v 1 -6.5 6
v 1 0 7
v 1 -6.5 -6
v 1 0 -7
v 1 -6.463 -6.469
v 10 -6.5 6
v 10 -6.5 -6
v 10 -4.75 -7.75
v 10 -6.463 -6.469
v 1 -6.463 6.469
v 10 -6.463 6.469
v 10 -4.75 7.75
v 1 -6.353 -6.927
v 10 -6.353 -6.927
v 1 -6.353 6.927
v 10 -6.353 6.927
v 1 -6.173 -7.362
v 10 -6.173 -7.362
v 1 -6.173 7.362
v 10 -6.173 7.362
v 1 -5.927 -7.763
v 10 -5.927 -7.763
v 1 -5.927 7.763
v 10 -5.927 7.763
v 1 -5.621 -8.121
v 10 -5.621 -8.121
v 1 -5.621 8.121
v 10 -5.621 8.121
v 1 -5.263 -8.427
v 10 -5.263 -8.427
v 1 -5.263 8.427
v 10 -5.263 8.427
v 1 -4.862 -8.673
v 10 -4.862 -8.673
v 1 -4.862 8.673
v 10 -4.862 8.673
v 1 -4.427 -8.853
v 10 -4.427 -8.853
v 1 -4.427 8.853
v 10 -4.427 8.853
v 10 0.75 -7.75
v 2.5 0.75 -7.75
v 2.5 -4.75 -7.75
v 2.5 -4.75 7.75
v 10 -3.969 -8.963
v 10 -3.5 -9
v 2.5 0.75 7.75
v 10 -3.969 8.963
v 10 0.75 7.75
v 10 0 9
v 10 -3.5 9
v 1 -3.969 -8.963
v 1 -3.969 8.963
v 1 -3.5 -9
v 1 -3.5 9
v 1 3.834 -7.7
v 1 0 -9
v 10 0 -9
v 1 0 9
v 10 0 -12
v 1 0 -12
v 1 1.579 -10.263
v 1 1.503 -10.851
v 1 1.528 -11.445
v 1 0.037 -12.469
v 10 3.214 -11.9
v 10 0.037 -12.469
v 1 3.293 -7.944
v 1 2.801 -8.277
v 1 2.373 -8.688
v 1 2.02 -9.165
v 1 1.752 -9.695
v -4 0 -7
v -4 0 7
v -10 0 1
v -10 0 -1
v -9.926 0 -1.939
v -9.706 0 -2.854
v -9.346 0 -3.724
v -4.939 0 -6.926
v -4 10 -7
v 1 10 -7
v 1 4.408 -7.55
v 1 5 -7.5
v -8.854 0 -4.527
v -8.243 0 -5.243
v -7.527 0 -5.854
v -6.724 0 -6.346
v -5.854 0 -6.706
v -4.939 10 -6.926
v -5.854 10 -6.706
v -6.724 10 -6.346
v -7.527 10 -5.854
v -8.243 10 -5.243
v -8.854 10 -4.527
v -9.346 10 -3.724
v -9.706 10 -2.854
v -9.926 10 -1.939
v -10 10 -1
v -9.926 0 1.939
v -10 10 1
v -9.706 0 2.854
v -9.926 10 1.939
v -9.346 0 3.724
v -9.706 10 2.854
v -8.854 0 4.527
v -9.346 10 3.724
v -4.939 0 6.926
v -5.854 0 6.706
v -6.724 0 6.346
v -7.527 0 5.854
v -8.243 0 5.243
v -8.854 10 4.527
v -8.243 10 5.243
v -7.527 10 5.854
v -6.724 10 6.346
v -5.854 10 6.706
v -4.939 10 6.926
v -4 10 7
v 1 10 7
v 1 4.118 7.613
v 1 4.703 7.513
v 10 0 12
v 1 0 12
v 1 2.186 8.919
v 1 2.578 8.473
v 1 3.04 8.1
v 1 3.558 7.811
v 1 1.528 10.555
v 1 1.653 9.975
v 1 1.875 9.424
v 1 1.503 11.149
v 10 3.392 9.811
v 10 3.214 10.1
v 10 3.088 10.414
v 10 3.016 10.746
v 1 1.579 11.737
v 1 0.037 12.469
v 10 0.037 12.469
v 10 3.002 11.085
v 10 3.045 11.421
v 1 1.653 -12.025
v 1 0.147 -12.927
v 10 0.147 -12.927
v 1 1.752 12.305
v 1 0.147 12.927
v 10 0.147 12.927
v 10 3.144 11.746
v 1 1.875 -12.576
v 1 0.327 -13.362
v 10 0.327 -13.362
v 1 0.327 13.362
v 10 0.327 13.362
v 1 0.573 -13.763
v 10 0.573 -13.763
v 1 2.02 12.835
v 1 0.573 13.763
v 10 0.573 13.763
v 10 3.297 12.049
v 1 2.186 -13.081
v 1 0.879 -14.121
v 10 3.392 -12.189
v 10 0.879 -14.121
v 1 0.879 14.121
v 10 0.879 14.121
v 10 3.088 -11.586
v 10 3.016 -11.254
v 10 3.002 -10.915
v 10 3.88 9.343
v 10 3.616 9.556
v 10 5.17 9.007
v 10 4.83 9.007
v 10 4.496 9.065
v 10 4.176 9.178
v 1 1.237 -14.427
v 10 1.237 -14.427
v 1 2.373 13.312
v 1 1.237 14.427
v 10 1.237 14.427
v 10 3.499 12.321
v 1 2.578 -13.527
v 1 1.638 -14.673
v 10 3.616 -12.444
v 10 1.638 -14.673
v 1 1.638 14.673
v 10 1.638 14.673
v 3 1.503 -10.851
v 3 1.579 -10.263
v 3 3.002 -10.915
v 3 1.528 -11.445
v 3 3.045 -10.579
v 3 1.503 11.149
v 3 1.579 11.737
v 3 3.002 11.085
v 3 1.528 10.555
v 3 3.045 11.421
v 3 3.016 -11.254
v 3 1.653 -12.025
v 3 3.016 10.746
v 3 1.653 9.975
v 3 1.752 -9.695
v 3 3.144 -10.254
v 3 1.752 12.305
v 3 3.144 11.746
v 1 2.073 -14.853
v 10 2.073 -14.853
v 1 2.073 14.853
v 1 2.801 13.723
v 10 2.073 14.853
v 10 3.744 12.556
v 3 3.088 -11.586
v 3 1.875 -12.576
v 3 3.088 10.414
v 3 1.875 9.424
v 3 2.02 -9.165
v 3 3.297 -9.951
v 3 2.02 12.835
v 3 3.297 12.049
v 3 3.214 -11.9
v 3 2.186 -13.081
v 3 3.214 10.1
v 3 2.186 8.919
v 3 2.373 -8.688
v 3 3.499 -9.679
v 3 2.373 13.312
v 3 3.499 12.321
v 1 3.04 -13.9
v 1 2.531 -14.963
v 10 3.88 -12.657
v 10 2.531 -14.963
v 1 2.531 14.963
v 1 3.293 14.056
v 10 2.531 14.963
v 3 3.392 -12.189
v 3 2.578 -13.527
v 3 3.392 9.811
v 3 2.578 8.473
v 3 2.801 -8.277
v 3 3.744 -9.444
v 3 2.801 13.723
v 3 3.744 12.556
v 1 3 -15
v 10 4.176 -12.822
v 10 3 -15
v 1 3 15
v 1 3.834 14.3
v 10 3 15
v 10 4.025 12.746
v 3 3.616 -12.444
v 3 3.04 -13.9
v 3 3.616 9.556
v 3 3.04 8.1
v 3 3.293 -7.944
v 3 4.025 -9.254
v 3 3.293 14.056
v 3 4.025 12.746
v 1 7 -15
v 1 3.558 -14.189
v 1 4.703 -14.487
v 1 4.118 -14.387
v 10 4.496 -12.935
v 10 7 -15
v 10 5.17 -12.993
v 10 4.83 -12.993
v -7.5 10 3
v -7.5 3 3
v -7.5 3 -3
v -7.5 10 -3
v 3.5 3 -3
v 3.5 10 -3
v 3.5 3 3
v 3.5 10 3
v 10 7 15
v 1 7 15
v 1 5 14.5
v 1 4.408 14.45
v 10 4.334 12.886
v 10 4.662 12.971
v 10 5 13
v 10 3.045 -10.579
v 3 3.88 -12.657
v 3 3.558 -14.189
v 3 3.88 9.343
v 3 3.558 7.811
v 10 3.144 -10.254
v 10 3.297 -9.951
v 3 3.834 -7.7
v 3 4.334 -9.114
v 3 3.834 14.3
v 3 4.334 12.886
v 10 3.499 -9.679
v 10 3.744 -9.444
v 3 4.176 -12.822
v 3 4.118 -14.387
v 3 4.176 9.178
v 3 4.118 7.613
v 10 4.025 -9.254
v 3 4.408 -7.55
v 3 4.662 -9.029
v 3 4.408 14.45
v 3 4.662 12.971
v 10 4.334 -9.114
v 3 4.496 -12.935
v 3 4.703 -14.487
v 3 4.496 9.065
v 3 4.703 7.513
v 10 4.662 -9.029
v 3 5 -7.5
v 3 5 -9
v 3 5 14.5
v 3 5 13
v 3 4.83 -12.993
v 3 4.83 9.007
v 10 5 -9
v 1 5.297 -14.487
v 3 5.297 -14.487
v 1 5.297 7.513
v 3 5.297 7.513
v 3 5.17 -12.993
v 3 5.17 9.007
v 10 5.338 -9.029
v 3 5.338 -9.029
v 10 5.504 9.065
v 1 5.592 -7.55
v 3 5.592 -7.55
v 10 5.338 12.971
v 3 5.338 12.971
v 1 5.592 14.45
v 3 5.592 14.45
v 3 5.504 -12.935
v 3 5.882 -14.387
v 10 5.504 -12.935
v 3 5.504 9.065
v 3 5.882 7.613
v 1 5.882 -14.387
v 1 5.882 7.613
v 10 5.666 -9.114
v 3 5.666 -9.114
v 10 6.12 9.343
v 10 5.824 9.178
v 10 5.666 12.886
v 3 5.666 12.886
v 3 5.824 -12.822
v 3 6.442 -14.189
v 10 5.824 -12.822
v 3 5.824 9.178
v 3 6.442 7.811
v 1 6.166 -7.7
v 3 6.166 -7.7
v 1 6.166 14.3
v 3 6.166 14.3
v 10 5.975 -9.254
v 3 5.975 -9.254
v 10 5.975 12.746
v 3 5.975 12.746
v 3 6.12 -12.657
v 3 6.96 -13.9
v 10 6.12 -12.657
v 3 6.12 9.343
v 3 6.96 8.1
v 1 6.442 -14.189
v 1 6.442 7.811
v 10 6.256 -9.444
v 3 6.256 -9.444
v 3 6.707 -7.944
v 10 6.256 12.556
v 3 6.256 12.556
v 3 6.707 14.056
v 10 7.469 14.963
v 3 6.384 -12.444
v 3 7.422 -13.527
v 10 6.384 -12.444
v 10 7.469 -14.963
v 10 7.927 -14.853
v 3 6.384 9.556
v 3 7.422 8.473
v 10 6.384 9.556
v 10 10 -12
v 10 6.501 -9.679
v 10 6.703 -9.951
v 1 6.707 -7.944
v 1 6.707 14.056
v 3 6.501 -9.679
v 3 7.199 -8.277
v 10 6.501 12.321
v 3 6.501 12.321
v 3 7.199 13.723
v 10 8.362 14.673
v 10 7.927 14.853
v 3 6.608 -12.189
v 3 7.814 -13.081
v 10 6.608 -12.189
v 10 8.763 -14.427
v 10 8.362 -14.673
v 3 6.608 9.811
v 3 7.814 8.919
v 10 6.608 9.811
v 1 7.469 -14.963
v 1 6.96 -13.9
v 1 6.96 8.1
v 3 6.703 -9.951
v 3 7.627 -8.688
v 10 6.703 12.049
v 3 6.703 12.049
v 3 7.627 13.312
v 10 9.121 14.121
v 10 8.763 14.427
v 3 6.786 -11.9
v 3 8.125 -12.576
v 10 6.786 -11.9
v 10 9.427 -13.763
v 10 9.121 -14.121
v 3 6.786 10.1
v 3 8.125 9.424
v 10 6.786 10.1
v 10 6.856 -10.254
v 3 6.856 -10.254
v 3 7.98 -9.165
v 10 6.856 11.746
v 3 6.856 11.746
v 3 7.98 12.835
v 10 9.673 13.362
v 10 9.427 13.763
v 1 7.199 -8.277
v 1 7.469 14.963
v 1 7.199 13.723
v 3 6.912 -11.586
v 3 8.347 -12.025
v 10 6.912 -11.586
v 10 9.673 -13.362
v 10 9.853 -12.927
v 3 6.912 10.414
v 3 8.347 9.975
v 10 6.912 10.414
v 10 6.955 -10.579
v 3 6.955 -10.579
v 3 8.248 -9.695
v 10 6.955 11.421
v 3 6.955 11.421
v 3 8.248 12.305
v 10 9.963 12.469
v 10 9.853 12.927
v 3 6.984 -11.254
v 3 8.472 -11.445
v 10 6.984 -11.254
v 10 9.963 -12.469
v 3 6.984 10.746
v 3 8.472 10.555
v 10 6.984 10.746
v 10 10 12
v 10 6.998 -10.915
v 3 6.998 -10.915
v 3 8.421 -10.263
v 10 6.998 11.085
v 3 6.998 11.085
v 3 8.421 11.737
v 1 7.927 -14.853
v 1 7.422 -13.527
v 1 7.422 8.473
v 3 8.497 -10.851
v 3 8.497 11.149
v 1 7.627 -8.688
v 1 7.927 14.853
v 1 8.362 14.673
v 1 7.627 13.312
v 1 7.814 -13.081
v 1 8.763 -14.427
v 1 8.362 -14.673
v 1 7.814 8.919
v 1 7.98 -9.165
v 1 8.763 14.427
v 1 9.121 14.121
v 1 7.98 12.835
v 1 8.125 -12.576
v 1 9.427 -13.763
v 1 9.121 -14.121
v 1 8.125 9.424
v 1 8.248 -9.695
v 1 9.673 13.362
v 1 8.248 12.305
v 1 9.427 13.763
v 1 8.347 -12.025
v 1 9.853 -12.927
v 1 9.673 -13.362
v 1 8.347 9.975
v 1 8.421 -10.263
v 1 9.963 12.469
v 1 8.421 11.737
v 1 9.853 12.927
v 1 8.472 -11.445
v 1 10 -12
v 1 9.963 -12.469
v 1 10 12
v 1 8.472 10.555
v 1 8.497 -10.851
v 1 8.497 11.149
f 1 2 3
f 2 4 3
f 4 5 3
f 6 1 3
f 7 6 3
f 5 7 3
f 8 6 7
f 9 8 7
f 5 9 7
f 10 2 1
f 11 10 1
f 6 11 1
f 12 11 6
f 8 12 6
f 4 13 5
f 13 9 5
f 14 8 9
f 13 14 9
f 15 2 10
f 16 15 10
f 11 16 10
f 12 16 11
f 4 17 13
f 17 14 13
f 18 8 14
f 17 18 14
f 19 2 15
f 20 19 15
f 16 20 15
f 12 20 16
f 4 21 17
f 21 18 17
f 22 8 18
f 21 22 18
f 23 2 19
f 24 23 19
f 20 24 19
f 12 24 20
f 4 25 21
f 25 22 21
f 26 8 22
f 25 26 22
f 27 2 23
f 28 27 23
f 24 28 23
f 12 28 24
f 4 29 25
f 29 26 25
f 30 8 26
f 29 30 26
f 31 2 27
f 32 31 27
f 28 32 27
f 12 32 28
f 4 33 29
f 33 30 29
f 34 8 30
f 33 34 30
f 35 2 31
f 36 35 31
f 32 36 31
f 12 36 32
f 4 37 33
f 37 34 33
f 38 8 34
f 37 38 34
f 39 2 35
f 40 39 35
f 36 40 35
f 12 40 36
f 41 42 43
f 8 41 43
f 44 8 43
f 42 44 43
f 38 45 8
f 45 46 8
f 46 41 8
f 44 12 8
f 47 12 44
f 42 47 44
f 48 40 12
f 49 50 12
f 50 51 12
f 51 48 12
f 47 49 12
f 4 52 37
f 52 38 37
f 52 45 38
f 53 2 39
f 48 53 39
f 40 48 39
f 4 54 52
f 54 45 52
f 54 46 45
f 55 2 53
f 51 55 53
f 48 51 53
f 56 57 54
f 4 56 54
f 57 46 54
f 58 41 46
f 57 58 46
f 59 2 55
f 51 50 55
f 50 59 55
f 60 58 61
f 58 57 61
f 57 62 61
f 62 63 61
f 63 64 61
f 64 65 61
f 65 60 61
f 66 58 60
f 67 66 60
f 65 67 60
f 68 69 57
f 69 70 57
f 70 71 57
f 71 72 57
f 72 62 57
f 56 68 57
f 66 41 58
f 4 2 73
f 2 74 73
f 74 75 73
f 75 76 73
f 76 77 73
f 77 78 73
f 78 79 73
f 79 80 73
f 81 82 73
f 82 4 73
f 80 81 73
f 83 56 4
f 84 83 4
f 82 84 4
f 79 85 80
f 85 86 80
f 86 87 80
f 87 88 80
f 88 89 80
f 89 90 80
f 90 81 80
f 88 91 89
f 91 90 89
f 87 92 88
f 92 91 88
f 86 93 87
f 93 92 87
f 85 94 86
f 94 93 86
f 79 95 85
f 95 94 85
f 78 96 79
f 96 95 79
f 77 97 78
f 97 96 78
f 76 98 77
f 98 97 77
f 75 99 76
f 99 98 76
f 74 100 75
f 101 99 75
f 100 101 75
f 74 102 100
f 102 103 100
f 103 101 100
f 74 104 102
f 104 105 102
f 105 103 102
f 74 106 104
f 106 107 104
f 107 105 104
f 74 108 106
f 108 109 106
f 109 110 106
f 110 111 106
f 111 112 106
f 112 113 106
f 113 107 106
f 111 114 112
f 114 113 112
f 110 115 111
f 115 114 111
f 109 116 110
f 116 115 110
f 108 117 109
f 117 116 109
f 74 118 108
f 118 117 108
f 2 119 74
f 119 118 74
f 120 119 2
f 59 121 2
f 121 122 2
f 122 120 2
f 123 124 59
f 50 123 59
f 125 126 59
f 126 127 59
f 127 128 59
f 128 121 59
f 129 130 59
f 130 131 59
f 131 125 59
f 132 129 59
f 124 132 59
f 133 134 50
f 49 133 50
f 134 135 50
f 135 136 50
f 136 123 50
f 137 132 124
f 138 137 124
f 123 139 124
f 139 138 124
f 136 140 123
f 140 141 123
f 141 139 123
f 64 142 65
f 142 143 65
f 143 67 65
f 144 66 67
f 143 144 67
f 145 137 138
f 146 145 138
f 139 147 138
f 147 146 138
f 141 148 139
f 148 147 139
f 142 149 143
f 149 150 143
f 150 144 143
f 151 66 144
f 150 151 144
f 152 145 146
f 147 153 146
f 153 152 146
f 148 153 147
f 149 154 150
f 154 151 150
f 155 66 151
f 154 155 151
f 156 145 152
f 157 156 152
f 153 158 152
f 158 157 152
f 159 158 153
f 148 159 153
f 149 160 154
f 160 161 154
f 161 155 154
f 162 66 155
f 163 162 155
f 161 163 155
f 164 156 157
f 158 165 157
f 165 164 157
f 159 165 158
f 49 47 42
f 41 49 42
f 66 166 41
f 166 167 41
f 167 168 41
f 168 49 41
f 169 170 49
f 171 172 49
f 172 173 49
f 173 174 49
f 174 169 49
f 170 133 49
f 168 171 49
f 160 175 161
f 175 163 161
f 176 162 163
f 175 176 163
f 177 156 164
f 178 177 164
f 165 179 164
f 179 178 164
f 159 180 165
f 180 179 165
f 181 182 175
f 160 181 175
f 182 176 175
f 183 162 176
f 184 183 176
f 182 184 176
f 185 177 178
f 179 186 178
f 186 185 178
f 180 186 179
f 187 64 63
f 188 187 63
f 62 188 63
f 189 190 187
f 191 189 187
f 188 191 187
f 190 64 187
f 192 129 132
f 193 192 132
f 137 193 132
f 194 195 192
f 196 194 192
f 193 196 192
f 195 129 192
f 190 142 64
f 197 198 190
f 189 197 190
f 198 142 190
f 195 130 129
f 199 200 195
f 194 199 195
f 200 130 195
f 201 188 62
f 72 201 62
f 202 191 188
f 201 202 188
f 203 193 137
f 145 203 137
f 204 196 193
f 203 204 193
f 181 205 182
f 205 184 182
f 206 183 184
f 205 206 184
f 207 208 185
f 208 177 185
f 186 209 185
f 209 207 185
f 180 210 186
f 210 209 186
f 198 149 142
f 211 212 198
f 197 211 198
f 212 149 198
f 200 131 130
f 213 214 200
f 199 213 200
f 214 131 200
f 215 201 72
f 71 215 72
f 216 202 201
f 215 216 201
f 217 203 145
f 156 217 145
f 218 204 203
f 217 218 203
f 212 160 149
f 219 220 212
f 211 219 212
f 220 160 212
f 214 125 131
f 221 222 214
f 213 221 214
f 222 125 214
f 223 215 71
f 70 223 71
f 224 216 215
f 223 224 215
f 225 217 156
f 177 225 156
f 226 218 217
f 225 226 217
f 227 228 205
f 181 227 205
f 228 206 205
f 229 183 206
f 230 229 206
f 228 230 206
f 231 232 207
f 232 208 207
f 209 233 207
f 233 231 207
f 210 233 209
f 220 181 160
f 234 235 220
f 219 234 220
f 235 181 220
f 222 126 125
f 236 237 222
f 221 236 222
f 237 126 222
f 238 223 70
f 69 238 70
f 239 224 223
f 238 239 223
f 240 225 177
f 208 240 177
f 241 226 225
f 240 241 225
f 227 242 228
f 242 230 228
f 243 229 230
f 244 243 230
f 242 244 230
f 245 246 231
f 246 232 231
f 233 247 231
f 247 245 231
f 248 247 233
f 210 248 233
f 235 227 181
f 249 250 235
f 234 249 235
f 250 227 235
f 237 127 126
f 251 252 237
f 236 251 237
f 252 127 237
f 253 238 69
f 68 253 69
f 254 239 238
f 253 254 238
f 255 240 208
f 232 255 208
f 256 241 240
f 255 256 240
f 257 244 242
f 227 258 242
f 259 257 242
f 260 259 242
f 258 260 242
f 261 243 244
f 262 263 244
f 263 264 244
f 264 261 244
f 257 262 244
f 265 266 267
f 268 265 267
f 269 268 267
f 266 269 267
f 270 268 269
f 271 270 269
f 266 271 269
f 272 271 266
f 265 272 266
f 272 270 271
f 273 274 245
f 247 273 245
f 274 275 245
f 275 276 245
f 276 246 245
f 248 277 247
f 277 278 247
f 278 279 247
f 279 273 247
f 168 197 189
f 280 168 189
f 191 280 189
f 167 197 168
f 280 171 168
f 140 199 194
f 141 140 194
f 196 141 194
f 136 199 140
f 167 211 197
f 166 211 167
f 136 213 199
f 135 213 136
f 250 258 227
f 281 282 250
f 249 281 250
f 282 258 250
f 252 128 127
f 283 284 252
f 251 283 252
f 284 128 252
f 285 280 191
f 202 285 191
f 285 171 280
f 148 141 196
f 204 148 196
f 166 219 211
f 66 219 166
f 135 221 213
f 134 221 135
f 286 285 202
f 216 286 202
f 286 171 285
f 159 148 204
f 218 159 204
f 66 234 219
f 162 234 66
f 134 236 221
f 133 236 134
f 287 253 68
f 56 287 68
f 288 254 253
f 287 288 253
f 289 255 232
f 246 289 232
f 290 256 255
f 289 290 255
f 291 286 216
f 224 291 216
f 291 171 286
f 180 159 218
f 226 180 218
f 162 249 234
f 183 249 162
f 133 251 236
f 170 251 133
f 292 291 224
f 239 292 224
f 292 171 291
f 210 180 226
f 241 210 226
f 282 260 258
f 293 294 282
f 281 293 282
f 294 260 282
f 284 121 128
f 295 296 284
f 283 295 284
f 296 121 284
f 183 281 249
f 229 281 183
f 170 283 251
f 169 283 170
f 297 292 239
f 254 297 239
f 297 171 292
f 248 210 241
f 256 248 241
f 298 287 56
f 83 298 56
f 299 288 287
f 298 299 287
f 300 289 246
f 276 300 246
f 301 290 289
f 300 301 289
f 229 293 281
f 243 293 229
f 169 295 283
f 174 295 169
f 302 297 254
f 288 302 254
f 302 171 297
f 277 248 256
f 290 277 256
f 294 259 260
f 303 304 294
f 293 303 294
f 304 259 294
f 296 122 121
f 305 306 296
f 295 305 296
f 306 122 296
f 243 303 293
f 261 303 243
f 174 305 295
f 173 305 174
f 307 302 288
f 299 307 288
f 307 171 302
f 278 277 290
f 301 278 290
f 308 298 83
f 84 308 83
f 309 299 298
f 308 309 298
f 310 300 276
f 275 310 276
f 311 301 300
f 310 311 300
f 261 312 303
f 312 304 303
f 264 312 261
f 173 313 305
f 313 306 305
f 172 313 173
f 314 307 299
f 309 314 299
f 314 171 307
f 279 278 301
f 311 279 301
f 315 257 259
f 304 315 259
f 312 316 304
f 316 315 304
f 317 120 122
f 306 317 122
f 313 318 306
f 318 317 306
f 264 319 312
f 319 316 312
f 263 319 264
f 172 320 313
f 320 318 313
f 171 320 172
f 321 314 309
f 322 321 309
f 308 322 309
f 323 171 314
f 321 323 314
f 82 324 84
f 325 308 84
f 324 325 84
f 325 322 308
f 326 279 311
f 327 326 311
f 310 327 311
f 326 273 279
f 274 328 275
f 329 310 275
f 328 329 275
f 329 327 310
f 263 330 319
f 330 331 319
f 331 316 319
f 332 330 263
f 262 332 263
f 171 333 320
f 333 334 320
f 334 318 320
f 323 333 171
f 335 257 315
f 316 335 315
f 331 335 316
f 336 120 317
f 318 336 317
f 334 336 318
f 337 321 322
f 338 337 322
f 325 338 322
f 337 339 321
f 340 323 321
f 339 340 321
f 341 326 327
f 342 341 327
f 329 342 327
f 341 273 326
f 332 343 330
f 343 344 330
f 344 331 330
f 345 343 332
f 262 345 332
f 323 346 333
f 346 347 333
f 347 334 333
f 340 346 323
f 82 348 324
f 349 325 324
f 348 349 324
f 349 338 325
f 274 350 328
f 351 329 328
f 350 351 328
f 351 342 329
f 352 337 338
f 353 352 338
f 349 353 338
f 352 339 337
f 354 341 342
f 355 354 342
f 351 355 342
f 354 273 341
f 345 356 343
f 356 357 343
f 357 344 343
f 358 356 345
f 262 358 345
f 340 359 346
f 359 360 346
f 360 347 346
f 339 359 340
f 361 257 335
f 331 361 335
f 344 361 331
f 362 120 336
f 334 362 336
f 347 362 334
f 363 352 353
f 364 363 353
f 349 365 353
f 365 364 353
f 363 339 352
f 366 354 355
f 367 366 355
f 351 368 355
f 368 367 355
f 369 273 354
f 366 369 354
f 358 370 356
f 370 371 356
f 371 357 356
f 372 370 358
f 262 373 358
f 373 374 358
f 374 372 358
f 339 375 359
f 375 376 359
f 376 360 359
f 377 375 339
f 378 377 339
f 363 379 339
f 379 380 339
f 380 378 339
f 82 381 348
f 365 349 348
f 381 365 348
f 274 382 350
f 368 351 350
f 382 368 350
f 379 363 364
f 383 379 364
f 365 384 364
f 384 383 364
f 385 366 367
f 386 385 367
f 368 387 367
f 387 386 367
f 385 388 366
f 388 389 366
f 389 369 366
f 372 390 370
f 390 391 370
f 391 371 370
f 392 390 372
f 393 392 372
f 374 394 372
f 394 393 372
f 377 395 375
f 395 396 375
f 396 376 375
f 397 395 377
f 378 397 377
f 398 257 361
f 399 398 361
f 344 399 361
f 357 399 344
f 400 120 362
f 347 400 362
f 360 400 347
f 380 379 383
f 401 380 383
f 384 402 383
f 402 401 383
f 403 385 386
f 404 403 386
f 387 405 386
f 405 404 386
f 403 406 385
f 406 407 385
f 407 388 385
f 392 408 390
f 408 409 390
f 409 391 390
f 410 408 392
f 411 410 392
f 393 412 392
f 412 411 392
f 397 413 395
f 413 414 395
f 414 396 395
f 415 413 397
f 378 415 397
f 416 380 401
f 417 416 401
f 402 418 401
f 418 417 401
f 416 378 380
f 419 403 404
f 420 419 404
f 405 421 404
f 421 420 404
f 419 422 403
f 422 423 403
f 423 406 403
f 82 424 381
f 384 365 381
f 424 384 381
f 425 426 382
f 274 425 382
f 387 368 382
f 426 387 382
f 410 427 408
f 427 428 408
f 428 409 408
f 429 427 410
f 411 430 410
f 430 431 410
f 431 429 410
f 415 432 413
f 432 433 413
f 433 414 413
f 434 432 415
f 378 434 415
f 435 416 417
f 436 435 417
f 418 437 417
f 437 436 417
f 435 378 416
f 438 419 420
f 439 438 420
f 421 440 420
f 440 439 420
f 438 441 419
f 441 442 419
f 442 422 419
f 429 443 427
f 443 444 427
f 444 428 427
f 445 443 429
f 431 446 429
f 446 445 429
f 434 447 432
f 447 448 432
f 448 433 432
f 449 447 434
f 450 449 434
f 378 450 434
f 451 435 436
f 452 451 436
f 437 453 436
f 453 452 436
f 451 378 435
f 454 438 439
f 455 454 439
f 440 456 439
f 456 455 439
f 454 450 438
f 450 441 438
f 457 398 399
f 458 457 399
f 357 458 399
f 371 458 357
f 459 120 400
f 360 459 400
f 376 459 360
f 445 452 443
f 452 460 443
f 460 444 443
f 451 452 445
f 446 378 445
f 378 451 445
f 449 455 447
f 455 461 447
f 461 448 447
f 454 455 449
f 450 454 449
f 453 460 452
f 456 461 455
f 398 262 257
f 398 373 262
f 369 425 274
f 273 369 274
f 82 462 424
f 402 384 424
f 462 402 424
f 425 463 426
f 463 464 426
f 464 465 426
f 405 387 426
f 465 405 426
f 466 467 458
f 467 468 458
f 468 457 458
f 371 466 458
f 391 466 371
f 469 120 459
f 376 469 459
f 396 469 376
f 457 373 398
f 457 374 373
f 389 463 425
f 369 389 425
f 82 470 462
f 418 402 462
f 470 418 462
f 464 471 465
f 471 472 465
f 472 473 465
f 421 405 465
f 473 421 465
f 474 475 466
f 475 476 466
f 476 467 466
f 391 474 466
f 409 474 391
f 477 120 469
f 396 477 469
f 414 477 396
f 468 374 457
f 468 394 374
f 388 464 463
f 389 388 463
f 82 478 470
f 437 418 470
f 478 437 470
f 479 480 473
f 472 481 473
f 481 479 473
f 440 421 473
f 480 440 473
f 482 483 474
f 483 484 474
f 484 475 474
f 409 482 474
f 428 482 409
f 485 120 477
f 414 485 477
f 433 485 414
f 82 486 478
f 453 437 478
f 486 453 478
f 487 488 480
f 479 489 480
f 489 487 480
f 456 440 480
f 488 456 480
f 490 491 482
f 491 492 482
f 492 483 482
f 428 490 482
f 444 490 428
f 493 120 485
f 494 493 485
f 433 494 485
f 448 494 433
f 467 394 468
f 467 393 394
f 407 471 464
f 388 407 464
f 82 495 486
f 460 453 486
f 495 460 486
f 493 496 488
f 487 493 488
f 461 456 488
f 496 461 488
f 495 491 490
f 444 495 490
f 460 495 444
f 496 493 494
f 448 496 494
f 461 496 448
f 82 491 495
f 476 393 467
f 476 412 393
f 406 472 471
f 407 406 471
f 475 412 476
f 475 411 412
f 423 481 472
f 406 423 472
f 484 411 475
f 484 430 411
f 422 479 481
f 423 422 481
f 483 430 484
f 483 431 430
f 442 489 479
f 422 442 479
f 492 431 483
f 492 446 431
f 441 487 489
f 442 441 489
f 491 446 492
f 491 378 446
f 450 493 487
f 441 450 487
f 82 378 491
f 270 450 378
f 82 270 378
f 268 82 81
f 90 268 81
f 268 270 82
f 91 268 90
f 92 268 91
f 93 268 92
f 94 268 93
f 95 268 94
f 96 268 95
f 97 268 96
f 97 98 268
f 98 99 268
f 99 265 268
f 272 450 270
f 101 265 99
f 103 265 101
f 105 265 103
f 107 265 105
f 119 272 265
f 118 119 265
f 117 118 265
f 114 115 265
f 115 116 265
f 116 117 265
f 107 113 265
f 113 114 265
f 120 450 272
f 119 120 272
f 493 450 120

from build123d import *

# Parameters (mm, degrees)
ESBO_O1_W                = 20
ESBO_O1_H                = 30
RESSALTO_EXTRUS_O1_DEPTH = 10
ESBO_O2_W                = 11
ESBO_O2_H                = 8
CORTE_EXTRUS_O1_DEPTH    = 10
ESBO_O3_W                = 11
ESBO_O3_H                = 6
CORTE_EXTRUS_O2_DEPTH    = 7
ESBO_O4_W                = 9
ESBO_O4_H                = 18
RESSALTO_EXTRUS_O2_DEPTH = 6.5
ESBO_O5_W                = 15.5
ESBO_O5_H                = 5.5
CORTE_EXTRUS_O3_DEPTH    = 7.5
ESBO_O6_R                = 2
CORTE_EXTRUS_O4_DEPTH    = 10
ESBO_O7_R                = 3.5
CORTE_EXTRUS_O5_DEPTH    = 2
FILETE1_R                = 6
FILETE2_R                = 3


with BuildPart() as part:
    # Esboço1 → Ressalto-extrusão1 (new body)
    with BuildSketch(Plane(origin=(0, 0, 0), x_dir=(1, 0, 0), z_dir=(0, 1, 0))):
        Rectangle(ESBO_O1_W, ESBO_O1_H)
    extrude(amount=RESSALTO_EXTRUS_O1_DEPTH)

    # Esboço2 → Corte-extrusão1 (cut)
    with BuildSketch(Plane(origin=(0, 10, 0), x_dir=(1, 0, 0), z_dir=(0, 1, 0))):
        with Locations((-4.5, 11)):
            Rectangle(ESBO_O2_W, ESBO_O2_H)
        with Locations((-4.5, -11)):
            Rectangle(ESBO_O2_W, ESBO_O2_H)
    extrude(amount=-CORTE_EXTRUS_O1_DEPTH, mode=Mode.SUBTRACT)

    # Esboço3 → Corte-extrusão2 (cut)
    with BuildSketch(Plane(origin=(0, 10, 0), x_dir=(1, 0, 0), z_dir=(0, 1, 0))):
        with Locations((-2, 0)):
            Rectangle(ESBO_O3_W, ESBO_O3_H)
    extrude(amount=-CORTE_EXTRUS_O2_DEPTH, mode=Mode.SUBTRACT)

    # Esboço4 → Ressalto-extrusão2 (add)
    with BuildSketch(Plane.XZ):
        with Locations((5.5, 0)):
            Rectangle(ESBO_O4_W, ESBO_O4_H)
    extrude(amount=RESSALTO_EXTRUS_O2_DEPTH)

    # Esboço5 → Corte-extrusão3 (cut)
    with BuildSketch(Plane(origin=(10, 0, 0), x_dir=(0, 0, -1), z_dir=(1, 0, 0))):
        with Locations((0, -2)):
            Rectangle(ESBO_O5_W, ESBO_O5_H)
    extrude(amount=-CORTE_EXTRUS_O3_DEPTH, mode=Mode.SUBTRACT)

    # Esboço6 → Corte-extrusão4 (cut, through all)
    with BuildSketch(Plane.ZY.offset(-1)):
        with Locations((11, 5)):
            Circle(ESBO_O6_R)
        with Locations((-11, 5)):
            Circle(ESBO_O6_R)
    extrude(amount=-CORTE_EXTRUS_O4_DEPTH, mode=Mode.SUBTRACT)

    # Esboço7 → Corte-extrusão5 (cut)
    with BuildSketch(Plane.ZY.offset(-1)):
        with Locations((11, 5)):
            Circle(ESBO_O7_R)
        with Locations((-11, 5)):
            Circle(ESBO_O7_R)
    extrude(amount=-CORTE_EXTRUS_O5_DEPTH, mode=Mode.SUBTRACT)

    # Filete1
    filete1_edges = [part.edges().sort_by_distance(p)[0] for p in [
        (-10, 5, -7),
        (-10, 5, 7),
    ]]
    fillet(filete1_edges, radius=FILETE1_R)

    # Filete2
    filete2_edges = [part.edges().sort_by_distance(p)[0] for p in [
        (5.5, 0, 15),
        (5.5, 10, 15),
        (5.5, 0, -15),
        (5.5, -6.5, -9),
        (5.5, -6.5, 9),
        (5.5, 10, -15),
    ]]
    fillet(filete2_edges, radius=FILETE2_R)


solid = part.part
